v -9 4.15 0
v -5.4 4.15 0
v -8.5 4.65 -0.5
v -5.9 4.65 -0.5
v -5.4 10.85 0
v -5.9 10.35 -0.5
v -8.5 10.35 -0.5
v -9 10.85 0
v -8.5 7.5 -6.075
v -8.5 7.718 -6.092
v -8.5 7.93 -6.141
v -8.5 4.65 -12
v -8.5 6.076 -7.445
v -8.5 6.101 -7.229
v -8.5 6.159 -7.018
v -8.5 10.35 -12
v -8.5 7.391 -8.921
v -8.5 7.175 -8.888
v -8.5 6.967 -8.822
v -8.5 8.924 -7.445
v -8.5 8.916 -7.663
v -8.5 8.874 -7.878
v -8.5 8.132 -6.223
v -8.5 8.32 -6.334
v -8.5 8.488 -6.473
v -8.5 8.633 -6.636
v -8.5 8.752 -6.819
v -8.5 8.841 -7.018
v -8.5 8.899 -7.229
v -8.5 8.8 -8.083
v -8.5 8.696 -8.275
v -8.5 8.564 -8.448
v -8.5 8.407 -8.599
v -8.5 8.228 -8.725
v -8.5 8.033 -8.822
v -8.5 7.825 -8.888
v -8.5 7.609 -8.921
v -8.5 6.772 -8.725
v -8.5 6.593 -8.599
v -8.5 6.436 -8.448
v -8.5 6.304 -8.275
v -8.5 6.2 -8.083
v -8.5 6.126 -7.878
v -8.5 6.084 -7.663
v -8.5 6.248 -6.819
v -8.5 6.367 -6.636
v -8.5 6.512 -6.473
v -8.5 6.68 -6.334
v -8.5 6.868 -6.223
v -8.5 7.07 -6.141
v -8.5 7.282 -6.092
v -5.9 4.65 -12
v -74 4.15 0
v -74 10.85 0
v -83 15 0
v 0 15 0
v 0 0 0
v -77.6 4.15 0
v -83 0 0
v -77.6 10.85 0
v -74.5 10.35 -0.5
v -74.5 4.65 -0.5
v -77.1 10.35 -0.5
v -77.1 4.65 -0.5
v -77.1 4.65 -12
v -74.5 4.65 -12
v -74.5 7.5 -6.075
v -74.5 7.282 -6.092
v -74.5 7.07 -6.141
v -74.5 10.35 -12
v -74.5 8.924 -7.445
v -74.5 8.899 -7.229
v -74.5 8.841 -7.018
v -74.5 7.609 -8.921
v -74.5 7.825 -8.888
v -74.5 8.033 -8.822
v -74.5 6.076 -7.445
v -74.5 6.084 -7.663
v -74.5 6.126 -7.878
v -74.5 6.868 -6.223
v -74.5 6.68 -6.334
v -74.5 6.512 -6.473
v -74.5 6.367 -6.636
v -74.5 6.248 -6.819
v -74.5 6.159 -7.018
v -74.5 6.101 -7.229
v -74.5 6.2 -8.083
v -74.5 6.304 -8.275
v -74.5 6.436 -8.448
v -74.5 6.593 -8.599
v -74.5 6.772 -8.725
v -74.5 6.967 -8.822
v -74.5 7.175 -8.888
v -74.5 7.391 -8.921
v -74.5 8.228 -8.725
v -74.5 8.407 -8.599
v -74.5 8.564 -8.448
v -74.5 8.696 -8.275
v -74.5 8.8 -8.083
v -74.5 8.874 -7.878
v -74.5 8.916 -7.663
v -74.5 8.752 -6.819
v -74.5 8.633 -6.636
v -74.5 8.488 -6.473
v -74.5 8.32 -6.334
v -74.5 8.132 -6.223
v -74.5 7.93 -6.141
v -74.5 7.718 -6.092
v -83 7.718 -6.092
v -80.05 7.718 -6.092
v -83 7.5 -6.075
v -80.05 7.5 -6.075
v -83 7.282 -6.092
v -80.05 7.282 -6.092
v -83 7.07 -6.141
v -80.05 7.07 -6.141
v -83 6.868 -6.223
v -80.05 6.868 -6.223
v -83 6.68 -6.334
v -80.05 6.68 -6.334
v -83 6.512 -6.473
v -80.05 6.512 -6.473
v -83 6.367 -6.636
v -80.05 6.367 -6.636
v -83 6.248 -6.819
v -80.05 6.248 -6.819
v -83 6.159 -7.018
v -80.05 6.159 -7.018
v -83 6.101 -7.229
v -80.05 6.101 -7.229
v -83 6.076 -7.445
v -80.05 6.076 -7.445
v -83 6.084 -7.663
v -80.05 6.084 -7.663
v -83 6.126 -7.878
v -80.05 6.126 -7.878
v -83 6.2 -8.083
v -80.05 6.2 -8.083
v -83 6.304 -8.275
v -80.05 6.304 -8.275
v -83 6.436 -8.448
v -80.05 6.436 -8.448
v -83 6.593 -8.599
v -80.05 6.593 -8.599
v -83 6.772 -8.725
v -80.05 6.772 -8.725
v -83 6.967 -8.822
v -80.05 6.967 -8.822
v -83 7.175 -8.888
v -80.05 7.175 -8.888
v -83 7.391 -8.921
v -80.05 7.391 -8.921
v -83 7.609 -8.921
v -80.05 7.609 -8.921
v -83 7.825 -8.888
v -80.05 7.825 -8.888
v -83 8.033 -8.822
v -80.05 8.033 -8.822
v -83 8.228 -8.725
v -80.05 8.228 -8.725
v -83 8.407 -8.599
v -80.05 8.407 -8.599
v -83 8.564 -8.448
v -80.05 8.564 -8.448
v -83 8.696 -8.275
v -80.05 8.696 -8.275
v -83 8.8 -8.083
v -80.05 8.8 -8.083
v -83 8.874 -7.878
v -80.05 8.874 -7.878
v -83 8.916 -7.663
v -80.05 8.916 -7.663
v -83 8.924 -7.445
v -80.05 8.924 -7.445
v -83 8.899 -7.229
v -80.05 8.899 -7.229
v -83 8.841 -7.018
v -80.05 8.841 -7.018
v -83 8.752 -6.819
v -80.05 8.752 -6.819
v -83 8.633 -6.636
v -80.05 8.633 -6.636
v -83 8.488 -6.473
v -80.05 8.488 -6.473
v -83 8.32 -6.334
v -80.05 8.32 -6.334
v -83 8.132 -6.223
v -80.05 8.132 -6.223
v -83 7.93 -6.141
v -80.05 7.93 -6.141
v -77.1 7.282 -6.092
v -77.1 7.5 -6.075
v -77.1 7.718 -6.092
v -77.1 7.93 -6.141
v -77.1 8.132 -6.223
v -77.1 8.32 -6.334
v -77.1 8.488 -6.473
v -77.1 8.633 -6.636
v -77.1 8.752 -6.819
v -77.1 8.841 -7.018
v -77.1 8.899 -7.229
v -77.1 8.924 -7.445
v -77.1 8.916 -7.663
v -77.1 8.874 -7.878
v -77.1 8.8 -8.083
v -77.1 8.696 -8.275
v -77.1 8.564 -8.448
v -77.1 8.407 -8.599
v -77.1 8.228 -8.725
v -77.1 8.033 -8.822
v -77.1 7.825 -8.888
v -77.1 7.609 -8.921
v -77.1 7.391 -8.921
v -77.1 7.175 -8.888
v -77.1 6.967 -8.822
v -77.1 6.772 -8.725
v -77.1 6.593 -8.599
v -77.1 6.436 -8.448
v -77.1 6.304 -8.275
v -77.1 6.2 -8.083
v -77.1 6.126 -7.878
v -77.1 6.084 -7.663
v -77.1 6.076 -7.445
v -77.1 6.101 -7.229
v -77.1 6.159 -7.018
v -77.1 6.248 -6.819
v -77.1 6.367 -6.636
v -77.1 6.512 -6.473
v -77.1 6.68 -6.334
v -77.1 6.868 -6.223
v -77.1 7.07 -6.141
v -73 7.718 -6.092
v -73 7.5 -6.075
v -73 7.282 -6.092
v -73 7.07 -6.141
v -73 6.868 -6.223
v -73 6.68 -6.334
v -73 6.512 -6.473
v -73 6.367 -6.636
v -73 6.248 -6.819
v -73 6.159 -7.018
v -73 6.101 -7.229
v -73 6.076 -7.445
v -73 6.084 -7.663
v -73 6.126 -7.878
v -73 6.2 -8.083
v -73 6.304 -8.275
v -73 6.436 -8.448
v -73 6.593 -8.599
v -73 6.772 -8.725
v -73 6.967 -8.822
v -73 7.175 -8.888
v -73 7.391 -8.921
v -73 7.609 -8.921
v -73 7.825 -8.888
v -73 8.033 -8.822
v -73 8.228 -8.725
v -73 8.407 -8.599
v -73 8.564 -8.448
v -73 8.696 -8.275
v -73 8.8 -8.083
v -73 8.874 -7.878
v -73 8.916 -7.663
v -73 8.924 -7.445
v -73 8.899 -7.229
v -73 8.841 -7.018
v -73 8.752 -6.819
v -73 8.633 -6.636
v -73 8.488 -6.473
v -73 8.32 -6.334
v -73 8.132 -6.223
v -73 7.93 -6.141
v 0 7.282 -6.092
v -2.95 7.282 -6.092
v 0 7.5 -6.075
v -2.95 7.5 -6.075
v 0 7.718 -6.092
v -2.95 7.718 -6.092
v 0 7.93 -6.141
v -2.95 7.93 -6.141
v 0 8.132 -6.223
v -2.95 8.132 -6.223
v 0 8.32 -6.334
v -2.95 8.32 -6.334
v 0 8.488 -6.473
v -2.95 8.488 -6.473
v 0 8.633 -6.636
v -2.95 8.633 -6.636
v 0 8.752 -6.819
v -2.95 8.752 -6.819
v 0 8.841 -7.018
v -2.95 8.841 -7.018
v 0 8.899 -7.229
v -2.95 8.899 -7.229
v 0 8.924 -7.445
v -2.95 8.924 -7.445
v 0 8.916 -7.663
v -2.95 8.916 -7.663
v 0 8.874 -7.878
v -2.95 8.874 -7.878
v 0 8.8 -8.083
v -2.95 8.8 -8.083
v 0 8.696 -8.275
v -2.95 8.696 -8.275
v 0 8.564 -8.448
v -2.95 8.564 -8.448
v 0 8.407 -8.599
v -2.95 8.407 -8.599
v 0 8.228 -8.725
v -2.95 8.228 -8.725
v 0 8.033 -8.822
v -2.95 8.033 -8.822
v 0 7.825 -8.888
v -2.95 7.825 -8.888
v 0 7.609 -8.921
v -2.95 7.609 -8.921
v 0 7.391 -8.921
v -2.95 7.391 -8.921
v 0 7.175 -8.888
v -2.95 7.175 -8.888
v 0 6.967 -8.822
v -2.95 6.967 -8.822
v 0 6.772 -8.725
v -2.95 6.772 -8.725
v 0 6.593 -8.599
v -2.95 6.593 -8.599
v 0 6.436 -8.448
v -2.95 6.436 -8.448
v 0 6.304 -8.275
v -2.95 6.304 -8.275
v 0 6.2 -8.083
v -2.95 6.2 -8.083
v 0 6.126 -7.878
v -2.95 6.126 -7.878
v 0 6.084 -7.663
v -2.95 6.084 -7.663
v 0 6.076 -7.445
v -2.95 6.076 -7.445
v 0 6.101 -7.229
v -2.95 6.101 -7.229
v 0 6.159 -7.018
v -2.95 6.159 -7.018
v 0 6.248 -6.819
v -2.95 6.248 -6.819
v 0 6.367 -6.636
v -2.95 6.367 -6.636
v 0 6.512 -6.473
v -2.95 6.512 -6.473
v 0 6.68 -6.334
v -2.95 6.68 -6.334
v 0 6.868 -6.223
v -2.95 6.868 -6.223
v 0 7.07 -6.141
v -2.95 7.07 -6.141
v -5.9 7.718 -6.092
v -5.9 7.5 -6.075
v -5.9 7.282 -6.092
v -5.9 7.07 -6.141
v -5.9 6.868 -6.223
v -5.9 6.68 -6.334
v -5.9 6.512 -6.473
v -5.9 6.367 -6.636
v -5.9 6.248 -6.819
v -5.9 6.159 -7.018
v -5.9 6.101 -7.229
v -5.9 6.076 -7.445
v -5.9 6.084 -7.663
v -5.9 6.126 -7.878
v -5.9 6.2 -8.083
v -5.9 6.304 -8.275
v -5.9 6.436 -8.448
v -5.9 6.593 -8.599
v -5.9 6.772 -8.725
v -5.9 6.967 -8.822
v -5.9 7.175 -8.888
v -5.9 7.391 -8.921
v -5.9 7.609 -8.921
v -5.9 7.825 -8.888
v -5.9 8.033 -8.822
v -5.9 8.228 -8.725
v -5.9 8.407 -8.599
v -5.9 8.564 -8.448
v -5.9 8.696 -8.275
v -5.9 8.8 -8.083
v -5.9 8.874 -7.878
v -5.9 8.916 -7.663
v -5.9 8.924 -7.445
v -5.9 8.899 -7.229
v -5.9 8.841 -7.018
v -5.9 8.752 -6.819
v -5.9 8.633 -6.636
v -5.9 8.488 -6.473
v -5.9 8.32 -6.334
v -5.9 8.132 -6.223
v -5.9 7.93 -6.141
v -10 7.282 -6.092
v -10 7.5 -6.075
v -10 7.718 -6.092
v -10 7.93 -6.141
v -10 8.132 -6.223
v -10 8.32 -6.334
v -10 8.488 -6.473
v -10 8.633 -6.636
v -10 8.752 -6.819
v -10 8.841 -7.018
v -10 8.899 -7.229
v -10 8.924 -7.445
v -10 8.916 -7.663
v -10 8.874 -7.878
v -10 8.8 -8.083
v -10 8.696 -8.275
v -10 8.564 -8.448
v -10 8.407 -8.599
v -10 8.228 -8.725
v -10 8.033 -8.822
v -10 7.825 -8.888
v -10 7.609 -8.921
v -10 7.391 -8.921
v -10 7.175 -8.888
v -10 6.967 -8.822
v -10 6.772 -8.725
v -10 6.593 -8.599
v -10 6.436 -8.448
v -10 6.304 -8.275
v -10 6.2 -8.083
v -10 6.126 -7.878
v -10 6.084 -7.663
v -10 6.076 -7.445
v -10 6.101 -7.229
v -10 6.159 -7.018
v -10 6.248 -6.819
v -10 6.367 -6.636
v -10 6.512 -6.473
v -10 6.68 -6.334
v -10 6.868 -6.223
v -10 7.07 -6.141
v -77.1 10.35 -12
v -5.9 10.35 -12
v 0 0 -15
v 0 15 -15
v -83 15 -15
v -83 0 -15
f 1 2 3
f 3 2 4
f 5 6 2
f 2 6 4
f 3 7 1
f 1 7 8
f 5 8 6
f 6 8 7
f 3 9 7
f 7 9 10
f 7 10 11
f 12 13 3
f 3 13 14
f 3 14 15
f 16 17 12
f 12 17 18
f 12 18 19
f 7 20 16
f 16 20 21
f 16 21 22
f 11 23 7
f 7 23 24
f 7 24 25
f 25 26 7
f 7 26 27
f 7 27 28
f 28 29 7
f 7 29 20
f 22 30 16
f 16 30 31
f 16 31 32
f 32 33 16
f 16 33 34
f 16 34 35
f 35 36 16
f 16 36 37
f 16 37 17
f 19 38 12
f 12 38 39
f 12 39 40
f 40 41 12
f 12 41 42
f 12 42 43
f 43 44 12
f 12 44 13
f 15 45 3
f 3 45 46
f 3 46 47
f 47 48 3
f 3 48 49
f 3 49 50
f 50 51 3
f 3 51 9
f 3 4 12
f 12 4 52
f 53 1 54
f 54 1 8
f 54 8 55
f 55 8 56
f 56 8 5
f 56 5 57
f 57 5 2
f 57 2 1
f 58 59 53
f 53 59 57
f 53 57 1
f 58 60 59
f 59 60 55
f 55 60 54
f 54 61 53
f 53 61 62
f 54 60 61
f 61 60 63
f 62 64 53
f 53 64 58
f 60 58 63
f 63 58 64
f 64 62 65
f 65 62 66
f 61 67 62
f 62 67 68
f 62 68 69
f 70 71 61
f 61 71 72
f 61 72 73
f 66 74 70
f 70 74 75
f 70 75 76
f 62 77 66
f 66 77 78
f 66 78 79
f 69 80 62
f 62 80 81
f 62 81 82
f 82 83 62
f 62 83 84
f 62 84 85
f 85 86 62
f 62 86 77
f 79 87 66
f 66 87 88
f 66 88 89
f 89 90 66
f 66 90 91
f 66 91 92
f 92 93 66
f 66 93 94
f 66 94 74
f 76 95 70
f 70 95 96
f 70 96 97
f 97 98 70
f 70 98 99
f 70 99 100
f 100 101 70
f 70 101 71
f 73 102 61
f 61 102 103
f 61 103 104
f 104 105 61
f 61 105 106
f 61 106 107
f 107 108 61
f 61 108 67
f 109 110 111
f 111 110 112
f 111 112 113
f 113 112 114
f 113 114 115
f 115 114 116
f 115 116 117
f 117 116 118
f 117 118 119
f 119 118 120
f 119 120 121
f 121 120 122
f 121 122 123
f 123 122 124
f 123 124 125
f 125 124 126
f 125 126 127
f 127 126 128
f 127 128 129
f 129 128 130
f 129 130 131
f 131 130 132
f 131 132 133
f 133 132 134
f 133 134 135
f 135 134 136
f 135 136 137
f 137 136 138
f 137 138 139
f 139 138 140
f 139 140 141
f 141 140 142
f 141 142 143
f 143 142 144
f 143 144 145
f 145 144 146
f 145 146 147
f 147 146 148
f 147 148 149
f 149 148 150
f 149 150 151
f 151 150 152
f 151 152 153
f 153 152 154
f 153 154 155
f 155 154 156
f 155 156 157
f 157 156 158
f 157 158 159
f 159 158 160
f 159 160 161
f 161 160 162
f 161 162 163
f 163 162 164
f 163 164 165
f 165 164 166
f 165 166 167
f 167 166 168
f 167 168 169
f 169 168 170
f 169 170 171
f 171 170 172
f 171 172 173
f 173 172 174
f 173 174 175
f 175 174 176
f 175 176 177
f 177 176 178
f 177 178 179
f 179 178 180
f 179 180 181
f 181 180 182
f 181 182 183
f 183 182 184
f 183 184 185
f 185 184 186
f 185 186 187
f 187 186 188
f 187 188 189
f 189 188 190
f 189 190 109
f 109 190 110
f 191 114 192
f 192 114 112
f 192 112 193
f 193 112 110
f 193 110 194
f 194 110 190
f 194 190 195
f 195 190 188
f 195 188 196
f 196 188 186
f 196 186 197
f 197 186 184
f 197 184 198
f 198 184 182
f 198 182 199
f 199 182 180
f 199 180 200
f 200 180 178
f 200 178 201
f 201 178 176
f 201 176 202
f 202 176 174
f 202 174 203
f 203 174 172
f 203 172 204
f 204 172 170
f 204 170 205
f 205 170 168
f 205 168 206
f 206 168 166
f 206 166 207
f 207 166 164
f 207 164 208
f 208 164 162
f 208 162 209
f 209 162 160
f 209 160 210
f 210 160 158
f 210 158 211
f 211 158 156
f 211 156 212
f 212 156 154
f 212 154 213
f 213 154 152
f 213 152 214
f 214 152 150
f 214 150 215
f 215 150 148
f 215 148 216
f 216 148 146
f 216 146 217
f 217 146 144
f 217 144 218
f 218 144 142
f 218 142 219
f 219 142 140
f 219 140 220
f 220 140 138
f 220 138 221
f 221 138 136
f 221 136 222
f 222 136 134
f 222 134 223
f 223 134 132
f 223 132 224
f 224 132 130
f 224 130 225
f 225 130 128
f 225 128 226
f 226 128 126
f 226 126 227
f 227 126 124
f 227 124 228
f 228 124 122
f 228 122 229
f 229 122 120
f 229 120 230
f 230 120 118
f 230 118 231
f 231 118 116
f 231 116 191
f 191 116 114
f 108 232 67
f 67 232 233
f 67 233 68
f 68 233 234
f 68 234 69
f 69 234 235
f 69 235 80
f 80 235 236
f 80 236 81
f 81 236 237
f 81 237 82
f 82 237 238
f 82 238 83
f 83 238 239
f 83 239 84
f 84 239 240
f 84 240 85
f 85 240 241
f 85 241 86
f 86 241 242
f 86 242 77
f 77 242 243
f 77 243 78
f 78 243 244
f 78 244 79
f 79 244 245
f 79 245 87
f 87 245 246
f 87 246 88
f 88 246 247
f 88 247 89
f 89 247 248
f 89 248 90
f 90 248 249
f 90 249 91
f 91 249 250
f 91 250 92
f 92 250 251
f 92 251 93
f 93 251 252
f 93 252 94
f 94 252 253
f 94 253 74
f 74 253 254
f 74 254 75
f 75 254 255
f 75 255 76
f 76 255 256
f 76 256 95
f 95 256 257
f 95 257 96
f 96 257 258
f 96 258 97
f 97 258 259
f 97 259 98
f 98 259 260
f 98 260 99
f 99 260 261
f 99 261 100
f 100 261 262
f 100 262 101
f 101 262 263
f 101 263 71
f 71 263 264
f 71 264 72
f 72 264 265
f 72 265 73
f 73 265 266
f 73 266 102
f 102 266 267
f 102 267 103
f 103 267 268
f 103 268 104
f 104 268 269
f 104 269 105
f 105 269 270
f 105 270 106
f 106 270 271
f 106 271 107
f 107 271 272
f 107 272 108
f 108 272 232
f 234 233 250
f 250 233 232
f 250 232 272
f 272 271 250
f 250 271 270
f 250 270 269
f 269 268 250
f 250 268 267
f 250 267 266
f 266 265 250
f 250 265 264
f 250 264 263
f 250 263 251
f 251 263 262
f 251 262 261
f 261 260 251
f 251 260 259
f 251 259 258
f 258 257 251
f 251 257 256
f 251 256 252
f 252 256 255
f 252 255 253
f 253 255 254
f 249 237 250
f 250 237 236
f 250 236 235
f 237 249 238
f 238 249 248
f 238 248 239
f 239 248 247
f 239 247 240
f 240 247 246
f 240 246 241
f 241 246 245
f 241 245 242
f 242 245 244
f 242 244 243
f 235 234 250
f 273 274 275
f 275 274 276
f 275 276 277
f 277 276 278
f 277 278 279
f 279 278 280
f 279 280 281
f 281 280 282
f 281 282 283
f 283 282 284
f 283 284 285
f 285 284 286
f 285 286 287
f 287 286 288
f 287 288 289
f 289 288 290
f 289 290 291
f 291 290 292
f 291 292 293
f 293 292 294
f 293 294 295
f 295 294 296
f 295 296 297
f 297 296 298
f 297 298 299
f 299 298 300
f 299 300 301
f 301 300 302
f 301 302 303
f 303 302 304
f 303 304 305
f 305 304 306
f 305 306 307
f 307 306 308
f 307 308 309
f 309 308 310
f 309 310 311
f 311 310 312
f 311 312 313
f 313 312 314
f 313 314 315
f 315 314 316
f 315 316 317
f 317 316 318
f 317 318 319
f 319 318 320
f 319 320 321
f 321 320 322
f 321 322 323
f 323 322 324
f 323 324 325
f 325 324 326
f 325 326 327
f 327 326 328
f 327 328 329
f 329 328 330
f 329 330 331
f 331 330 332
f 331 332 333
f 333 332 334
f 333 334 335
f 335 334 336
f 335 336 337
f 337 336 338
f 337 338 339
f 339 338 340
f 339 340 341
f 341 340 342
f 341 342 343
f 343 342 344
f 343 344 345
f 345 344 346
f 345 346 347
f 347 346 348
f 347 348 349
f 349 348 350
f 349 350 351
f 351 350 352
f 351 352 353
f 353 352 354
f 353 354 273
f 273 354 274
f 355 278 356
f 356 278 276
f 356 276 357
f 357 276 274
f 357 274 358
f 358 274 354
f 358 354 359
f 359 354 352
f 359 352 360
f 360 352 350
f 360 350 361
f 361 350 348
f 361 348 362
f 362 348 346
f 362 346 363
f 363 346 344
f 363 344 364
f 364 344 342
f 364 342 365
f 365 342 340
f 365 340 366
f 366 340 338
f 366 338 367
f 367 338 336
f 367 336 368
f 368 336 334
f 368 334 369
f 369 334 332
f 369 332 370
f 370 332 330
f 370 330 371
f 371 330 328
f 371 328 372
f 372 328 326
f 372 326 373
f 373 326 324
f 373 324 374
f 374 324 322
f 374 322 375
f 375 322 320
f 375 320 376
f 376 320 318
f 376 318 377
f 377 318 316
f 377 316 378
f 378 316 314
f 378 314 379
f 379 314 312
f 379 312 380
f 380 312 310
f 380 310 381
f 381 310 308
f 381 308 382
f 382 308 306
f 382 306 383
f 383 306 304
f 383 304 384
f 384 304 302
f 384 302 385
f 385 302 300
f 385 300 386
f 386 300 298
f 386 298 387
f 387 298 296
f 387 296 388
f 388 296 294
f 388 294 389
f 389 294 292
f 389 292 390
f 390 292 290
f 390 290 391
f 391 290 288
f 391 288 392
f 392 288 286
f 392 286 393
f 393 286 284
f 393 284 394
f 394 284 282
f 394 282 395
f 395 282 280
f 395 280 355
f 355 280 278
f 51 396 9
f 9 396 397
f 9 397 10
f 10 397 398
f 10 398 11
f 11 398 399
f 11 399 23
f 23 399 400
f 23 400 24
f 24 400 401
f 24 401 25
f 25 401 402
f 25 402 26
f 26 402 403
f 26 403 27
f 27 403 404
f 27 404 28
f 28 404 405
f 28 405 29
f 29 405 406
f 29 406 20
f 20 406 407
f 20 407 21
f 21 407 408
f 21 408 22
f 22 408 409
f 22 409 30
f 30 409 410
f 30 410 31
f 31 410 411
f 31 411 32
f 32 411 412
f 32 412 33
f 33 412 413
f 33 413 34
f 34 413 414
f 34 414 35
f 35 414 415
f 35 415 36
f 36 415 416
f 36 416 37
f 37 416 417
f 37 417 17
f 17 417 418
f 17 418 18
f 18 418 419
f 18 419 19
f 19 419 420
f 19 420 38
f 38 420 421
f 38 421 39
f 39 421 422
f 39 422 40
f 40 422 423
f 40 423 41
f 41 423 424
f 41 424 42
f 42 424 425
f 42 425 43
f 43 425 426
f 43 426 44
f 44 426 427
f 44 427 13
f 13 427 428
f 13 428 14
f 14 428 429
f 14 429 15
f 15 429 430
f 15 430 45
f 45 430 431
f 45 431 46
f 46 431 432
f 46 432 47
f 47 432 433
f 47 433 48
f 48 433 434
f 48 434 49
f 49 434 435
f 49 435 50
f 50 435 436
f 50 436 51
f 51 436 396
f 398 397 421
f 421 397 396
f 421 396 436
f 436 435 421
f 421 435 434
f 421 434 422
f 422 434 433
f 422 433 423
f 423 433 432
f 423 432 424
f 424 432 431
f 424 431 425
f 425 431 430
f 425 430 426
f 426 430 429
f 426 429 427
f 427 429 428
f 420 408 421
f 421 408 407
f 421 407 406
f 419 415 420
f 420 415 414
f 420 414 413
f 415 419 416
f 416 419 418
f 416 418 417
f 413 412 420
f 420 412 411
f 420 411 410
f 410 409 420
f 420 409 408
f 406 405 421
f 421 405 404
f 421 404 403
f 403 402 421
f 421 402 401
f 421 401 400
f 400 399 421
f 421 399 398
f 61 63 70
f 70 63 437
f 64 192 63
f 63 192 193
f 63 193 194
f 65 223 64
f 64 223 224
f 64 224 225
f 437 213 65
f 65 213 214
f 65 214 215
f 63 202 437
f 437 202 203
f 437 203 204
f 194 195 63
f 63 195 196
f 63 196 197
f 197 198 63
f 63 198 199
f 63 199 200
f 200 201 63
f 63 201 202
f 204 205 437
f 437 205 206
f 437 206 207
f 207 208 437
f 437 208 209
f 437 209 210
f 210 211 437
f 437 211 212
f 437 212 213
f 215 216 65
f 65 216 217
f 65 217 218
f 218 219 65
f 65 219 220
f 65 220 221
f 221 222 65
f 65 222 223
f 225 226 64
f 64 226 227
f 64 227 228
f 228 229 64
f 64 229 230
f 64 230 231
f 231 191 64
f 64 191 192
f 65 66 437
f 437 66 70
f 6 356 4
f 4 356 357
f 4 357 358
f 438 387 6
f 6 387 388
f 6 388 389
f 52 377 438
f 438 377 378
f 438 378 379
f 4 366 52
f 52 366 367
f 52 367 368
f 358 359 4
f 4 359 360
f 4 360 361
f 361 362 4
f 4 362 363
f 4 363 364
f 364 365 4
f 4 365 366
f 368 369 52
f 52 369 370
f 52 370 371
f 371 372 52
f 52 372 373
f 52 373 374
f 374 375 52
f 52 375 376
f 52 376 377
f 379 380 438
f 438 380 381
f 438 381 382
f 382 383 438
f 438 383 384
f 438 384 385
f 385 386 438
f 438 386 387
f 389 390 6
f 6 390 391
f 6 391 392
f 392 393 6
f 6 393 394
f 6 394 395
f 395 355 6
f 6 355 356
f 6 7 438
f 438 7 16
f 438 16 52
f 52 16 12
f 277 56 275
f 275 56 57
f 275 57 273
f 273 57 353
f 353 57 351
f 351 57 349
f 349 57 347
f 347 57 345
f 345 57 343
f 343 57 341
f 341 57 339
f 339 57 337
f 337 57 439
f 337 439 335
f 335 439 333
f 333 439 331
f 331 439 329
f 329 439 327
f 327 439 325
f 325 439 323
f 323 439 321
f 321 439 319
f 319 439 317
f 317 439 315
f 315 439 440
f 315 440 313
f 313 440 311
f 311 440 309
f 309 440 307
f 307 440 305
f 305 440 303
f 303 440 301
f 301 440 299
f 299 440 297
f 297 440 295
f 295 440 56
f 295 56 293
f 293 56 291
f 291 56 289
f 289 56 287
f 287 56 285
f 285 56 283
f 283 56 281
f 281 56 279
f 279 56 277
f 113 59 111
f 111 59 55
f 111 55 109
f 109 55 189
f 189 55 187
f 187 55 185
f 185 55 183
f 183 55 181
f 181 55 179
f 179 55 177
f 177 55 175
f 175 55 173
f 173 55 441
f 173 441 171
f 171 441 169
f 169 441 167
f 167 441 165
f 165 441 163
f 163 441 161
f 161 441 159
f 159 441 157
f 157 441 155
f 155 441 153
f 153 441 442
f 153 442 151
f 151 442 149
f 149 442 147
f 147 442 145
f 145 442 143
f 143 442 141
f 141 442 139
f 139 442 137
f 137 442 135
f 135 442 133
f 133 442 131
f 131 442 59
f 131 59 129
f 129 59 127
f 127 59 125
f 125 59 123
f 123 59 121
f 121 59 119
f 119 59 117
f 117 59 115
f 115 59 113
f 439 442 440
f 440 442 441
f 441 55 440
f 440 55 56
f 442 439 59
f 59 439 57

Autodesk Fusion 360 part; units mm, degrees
sketch "brace" plane through (0, 0, 0) normal (0, 1, 0) x (1, 0, 0)
  line L0 (0, 0) -> (-83, 0)
  line L1 (-83, 0) -> (-83, 15)
  line L2 (-83, 15) -> (0, 15)
  line L3 (0, 15) -> (0, 0)
  dimension "d1" = 83
  dimension "d2" = 15
extrude "Extrude1" add sketch "brace" along normal blind 15
sketch "3mm hole" plane through (0, 0, 0) normal (1, 0, 0) x (0, 0, -1)
  line L0 (15, 0) -> (0, 0) construction
  line L1 (7.5, 0) -> (7.5, 7.5) construction
  circle A0 centre (7.5, 7.5) radius 1.425
  dimension "d5" = 7.5
  dimension "d6" = 2.85
sketch "side nut slot" plane through (0, 0, 0) normal (0, 0, 1) x (1, 0, 0)
  line L0 (0, 0) -> (-5.9, 0) construction
  line L1 (-5.9, 0) -> (-5.9, 4.65) construction
  line L2 (-5.9, 4.65) -> (-8.5, 4.65)
  line L3 (-8.5, 4.65) -> (-8.5, 10.35)
  line L4 (-8.5, 10.35) -> (-5.9, 10.35)
  line L5 (-5.9, 10.35) -> (-5.9, 4.65)
  line L6 (-83, 0) -> (-77.1, 0) construction
  line L7 (-77.1, 0) -> (-77.1, 4.65) construction
  line L8 (-77.1, 4.65) -> (-74.5, 4.65)
  line L9 (-74.5, 4.65) -> (-74.5, 10.35)
  line L10 (-74.5, 10.35) -> (-77.1, 10.35)
  line L11 (-77.1, 10.35) -> (-77.1, 4.65)
  point P0 (-83, 0)
  dimension "d7" = 5.9
  dimension "d8" = 4.65
  dimension "d9" = 2.6
  dimension "d10" = 5.7
  dimension "d11" = 5.9
  dimension "d12" = 4.65
  dimension "d13" = 2.6
  dimension "d14" = 5.7
extrude "Extrude2" cut sketch "side nut slot" against normal blind 12
extrude "Extrude3" cut sketch "3mm hole" against normal blind 10
extrude "Extrude4" cut sketch "3mm hole" along normal blind 10 from surface at -83
chamfer "Chamfer1" distance 0.5 angle 45 4 edges at (-77.1, 7.5, 0) (-75.8, 10.35, 0) (-74.5, 7.5, 0) (-75.8, 4.65, 0)
chamfer "Chamfer2" distance 0.5 angle 45 4 edges at (-7.2, 10.35, 0) (-5.9, 7.5, 0) (-7.2, 4.65, 0) (-8.5, 7.5, 0)
